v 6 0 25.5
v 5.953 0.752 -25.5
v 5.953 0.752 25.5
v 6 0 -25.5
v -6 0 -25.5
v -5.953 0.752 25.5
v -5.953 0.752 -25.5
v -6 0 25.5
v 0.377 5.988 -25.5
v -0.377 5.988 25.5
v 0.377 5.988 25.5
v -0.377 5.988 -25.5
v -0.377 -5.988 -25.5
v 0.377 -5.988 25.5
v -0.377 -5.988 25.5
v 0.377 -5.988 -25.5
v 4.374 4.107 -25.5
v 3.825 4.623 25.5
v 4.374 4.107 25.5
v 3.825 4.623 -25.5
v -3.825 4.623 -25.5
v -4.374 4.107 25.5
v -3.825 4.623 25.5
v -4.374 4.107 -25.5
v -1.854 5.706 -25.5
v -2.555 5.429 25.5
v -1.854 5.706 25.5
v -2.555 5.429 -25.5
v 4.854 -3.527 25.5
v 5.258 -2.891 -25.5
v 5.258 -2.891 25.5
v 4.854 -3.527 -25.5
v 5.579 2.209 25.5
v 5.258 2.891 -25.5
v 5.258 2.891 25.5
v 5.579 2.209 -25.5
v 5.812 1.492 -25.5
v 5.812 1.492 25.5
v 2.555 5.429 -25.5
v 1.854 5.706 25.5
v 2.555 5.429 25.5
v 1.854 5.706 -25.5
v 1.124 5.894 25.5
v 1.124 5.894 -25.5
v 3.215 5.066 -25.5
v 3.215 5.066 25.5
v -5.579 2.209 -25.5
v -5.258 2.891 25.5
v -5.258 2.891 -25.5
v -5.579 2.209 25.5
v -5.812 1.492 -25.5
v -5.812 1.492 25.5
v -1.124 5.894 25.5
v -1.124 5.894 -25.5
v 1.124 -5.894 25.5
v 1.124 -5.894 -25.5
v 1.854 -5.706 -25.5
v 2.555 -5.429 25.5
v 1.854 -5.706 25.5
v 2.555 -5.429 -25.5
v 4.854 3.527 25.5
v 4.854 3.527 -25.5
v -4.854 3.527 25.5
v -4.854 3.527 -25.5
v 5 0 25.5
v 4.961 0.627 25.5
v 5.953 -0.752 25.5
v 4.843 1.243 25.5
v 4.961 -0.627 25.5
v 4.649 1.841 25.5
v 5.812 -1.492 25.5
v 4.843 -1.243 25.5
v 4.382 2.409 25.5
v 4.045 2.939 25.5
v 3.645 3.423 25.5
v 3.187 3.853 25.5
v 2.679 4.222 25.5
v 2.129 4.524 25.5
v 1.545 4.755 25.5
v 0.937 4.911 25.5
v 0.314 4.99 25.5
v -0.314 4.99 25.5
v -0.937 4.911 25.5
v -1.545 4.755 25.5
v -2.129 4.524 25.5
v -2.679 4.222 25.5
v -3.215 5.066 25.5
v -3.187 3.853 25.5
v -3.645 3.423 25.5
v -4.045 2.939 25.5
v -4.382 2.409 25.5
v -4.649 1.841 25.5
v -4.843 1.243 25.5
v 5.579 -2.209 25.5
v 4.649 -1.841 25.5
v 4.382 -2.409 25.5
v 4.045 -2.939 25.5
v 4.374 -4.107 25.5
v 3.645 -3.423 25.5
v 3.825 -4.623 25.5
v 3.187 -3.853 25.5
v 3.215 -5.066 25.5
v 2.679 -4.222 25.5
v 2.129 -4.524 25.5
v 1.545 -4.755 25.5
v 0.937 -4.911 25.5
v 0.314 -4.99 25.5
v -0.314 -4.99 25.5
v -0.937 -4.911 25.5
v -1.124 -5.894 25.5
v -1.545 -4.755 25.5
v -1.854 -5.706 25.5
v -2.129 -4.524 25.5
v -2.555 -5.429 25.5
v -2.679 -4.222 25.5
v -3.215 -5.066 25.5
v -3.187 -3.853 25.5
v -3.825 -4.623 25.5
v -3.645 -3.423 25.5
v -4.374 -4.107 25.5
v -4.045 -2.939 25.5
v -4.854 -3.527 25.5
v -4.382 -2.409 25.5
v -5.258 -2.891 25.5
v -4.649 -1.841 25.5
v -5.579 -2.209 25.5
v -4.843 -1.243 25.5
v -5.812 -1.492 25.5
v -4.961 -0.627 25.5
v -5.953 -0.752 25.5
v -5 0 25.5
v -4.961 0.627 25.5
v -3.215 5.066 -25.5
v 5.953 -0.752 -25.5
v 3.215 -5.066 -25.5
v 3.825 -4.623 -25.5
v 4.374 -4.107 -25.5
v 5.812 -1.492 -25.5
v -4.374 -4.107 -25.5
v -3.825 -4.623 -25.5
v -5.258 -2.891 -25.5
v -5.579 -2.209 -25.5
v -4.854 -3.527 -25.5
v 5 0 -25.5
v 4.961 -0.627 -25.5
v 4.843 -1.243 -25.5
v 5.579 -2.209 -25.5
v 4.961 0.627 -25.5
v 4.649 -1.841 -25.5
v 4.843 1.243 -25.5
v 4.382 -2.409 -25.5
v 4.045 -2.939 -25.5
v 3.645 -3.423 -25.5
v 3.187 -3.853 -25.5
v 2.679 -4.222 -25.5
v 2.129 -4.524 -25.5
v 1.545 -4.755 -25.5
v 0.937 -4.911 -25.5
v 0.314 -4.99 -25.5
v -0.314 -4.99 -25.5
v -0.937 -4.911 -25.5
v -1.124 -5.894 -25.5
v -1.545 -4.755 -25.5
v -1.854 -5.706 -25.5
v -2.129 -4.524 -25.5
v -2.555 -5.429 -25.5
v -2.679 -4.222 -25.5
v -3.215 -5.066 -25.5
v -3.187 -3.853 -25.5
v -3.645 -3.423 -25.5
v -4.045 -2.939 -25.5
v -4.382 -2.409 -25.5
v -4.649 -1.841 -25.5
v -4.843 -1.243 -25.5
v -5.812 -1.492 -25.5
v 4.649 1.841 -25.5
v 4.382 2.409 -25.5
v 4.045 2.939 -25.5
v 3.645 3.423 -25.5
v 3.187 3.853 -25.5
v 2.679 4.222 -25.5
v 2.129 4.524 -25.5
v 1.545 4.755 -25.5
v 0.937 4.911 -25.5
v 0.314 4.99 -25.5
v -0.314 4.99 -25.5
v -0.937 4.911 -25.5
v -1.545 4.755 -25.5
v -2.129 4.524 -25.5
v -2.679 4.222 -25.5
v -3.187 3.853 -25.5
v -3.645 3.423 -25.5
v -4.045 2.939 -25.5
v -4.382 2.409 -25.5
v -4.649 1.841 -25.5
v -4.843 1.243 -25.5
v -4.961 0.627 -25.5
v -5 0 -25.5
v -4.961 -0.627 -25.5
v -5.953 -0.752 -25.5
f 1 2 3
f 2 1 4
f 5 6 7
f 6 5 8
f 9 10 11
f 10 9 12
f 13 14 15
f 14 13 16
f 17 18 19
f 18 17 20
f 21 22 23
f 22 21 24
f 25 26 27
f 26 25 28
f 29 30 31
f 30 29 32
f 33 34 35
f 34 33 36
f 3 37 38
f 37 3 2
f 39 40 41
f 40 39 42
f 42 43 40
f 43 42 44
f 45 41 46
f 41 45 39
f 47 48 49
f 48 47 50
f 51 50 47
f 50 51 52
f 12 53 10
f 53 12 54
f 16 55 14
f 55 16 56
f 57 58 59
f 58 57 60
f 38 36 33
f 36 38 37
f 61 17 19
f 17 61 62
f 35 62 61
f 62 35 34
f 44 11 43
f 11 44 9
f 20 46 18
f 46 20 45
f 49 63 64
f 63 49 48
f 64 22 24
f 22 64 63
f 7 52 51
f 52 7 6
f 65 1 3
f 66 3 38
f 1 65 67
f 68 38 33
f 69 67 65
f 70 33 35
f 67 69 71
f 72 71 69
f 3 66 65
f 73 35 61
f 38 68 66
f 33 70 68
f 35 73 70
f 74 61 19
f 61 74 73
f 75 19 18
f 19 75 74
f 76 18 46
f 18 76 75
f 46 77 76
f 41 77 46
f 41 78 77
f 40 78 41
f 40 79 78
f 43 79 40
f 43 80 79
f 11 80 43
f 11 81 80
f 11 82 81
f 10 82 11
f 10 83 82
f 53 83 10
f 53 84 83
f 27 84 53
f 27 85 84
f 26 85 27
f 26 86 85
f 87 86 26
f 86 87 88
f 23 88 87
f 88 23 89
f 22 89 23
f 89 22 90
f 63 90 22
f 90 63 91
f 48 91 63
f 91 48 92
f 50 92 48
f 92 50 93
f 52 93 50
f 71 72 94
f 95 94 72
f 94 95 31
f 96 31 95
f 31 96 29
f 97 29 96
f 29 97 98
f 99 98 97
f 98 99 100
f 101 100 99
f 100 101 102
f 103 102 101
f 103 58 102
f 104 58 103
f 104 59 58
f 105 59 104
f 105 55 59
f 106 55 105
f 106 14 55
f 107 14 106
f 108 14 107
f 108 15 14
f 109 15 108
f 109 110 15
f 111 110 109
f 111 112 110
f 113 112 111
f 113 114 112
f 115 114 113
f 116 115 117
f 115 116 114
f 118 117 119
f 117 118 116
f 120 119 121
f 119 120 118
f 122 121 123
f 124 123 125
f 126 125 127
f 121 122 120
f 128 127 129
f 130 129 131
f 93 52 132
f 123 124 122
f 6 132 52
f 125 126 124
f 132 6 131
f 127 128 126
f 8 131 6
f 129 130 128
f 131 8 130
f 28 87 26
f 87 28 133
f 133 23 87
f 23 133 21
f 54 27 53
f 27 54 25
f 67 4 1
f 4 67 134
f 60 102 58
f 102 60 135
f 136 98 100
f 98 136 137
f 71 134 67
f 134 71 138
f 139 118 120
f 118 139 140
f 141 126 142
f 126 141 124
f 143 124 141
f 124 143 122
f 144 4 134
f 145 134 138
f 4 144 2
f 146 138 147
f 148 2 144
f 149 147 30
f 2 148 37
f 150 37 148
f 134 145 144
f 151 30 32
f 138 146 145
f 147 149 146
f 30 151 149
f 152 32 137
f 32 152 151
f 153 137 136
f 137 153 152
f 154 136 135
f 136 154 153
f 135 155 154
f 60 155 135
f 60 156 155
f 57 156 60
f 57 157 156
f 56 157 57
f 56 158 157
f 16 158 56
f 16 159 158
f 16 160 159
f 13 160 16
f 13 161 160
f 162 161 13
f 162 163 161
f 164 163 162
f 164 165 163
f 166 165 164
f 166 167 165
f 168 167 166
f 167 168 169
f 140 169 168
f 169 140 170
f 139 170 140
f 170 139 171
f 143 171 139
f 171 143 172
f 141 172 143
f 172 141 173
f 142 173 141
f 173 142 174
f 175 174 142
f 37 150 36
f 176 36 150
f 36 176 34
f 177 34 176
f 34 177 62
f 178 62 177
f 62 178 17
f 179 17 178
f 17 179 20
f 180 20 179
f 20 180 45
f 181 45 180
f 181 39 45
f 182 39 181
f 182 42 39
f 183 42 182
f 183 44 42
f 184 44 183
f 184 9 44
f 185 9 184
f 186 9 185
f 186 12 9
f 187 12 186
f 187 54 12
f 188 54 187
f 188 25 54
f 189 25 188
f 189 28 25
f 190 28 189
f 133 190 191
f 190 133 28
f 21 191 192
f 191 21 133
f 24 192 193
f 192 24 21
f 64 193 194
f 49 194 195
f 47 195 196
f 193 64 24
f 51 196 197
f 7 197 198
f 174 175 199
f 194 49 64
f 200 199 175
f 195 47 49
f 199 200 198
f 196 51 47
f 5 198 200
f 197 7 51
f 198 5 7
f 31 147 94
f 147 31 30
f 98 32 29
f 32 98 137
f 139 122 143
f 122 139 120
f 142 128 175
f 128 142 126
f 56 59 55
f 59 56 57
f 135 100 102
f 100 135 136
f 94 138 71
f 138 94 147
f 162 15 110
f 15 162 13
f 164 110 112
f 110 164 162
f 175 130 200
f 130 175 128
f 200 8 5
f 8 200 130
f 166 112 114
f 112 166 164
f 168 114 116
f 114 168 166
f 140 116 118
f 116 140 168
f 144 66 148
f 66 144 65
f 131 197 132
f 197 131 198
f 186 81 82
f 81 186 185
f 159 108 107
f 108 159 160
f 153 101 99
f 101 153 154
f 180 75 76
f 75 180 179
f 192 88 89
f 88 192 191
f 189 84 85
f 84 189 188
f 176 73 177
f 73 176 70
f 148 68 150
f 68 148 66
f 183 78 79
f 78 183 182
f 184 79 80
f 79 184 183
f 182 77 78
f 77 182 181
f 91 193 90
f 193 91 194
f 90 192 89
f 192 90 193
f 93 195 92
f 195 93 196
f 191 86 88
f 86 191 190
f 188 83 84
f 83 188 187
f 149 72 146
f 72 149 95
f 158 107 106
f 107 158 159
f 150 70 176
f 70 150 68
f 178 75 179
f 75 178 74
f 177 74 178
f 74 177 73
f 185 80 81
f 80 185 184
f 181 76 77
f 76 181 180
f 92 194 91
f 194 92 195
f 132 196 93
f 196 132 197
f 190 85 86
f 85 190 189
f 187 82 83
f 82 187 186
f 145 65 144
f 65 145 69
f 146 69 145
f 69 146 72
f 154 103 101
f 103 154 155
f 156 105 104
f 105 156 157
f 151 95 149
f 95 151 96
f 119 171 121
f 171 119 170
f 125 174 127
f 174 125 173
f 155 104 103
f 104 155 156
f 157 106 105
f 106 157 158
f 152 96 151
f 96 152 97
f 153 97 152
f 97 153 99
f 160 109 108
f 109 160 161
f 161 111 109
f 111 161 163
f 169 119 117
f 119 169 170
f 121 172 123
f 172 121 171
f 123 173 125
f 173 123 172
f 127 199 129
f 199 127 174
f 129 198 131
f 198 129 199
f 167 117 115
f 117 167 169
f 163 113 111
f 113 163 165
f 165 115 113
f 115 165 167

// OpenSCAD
$fn = 50;


difference() {
	union() {
		translate(v = [0, 0, -25.5000000000]) {
			cylinder(h = 51, r = 6.0000000000);
		}
	}
	union() {
		translate(v = [0, 0, -100.0000000000]) {
			cylinder(h = 200, r = 5.0000000000);
		}
	}
}
